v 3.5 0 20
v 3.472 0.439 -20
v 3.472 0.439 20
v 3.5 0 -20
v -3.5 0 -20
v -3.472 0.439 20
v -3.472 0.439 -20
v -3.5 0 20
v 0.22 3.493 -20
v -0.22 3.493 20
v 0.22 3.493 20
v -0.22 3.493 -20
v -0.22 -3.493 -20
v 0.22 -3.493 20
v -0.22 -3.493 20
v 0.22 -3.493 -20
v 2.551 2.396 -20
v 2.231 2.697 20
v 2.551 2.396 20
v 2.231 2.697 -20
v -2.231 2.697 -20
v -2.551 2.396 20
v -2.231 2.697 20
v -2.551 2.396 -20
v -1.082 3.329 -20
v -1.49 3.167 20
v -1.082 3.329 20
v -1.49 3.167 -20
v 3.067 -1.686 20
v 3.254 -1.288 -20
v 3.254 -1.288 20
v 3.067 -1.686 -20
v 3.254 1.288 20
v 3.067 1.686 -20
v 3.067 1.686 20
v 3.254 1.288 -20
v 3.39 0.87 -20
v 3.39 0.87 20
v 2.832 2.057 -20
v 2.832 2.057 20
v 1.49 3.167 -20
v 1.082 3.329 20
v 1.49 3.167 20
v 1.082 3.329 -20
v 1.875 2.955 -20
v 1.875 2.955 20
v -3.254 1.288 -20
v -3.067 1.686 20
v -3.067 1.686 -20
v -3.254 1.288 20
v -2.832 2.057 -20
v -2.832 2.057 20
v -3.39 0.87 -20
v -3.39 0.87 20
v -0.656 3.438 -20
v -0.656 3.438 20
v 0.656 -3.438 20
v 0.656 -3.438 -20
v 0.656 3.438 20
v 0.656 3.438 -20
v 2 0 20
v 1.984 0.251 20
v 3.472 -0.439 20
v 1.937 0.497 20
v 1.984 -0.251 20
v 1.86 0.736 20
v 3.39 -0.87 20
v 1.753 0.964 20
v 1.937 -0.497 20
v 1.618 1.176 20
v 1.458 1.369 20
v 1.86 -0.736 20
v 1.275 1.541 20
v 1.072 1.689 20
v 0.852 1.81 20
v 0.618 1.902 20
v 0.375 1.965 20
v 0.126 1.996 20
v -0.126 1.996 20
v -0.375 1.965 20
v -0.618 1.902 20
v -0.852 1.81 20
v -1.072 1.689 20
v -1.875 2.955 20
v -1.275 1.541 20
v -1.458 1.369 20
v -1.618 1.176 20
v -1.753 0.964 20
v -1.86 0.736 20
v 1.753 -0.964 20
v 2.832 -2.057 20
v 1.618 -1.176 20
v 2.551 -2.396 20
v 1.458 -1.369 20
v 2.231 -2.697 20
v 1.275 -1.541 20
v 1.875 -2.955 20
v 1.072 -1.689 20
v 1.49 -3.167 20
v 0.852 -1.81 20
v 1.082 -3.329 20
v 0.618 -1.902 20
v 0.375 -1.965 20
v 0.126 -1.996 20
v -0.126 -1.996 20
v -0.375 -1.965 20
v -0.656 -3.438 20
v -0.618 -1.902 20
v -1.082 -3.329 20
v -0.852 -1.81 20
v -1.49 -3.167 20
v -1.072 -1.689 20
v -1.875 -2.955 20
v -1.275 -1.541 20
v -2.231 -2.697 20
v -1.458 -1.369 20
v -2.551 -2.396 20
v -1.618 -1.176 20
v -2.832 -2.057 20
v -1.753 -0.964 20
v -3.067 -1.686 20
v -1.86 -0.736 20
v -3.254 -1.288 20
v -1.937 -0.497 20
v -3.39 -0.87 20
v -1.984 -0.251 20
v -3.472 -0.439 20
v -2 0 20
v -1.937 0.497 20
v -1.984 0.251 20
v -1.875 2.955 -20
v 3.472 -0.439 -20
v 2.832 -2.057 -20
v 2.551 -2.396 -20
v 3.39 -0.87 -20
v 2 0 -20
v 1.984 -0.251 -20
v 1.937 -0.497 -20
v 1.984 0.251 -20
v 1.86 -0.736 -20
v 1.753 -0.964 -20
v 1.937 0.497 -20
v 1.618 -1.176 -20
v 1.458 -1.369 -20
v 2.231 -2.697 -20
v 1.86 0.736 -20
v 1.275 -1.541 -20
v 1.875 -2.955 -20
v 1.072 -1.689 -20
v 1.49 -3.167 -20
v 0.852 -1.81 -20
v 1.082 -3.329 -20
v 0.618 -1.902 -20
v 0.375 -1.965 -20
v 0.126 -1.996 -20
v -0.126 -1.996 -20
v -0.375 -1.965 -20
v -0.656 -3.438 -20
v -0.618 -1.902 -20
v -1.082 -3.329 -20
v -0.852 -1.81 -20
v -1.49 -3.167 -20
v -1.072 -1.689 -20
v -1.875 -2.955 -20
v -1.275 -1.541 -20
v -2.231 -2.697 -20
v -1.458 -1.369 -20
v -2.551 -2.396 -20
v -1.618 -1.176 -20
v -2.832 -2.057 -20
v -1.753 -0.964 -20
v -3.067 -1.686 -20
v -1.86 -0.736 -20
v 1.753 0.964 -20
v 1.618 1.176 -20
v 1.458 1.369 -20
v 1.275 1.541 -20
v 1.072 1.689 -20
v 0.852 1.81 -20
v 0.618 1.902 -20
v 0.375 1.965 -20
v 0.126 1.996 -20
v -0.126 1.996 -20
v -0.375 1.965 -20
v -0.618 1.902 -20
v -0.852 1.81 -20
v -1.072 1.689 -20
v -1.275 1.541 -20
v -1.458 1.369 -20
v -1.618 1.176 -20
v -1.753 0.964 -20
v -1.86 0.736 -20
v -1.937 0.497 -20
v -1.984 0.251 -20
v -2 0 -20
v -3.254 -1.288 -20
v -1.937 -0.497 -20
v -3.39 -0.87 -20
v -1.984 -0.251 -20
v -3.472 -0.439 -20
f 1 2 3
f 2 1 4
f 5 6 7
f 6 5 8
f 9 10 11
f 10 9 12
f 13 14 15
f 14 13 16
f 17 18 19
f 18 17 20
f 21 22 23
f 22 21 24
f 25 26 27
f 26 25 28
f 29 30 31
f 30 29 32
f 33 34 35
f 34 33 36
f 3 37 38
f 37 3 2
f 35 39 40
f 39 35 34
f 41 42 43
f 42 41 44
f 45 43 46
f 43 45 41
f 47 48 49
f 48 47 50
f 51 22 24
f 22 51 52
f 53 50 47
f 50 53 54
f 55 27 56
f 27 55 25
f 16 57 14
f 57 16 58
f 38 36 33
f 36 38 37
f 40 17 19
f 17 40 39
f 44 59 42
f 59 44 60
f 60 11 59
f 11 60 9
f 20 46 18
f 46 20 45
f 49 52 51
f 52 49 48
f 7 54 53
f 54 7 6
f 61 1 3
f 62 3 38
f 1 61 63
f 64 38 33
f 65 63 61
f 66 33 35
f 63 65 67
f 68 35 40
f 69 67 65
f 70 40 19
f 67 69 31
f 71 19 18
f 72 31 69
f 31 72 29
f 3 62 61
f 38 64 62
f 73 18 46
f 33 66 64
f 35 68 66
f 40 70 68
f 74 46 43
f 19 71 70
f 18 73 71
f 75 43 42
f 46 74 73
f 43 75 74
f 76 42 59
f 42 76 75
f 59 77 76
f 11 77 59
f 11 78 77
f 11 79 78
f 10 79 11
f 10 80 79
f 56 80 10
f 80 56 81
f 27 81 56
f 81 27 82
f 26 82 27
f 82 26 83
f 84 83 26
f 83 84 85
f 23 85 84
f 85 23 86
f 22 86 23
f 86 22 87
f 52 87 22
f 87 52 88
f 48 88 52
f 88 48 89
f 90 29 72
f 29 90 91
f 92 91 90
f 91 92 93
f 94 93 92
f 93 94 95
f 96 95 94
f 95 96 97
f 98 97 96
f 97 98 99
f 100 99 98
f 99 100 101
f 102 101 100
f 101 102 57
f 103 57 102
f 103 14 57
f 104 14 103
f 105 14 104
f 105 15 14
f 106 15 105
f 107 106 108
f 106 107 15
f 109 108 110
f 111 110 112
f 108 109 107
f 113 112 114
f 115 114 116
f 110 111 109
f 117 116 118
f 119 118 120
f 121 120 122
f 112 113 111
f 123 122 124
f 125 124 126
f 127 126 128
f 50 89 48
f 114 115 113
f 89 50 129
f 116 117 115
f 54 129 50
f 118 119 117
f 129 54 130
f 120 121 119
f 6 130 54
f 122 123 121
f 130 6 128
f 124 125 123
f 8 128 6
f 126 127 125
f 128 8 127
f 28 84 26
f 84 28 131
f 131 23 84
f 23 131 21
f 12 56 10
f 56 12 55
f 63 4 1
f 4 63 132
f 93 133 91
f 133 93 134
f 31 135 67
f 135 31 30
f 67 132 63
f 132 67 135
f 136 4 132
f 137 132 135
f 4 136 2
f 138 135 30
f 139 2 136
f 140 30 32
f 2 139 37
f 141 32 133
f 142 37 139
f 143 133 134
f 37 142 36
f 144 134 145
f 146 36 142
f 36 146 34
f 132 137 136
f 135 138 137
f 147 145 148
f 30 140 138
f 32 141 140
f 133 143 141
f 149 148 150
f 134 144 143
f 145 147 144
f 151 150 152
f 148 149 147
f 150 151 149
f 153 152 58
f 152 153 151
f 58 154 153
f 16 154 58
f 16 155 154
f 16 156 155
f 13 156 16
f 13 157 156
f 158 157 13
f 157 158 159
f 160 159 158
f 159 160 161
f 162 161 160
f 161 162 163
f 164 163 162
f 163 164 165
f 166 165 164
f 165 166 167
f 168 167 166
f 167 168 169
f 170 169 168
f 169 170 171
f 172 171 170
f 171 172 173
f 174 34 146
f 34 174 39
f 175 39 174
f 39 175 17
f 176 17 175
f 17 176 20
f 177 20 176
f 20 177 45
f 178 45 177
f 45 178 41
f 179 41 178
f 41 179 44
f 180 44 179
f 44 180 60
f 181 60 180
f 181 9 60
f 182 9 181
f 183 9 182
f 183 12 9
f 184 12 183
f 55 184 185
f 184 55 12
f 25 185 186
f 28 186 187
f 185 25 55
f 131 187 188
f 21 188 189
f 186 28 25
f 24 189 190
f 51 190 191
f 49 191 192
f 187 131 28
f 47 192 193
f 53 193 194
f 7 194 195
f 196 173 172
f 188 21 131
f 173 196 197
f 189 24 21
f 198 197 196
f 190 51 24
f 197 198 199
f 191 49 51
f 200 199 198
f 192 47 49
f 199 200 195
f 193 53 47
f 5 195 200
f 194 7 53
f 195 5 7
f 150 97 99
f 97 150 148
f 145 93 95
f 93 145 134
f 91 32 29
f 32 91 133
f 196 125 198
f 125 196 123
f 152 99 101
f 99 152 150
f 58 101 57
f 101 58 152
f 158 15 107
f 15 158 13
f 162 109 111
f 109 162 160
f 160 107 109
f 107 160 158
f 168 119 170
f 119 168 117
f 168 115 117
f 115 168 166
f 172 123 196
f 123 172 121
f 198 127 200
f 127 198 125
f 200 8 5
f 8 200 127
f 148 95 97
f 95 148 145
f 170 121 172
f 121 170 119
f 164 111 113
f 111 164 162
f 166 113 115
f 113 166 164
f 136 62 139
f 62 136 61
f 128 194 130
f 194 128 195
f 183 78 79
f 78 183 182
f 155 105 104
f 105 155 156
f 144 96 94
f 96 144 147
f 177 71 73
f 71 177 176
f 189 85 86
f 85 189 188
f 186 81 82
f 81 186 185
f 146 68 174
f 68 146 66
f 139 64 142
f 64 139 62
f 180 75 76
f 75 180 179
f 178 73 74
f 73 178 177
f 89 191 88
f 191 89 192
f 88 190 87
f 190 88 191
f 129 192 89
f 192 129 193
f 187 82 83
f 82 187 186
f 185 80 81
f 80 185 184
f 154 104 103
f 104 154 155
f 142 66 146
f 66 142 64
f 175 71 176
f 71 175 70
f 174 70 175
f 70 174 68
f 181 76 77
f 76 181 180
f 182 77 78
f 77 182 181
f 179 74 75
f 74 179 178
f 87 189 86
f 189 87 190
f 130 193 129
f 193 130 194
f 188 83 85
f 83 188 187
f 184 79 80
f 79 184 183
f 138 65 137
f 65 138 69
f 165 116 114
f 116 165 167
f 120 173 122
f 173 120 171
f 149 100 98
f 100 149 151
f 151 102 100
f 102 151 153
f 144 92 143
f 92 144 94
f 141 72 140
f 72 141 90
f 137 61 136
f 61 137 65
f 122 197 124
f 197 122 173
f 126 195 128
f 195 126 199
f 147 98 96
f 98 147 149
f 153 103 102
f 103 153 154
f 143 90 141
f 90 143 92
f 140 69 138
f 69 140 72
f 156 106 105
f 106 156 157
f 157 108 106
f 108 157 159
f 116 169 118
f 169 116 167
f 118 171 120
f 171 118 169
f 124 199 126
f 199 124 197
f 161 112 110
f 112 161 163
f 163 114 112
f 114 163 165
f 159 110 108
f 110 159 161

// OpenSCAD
$fn = 50;


difference() {
	union() {
		translate(v = [0, 0, -20.0000000000]) {
			cylinder(h = 40, r = 3.5000000000);
		}
	}
	union() {
		translate(v = [0, 0, -100.0000000000]) {
			cylinder(h = 200, r = 2.0000000000);
		}
	}
}
